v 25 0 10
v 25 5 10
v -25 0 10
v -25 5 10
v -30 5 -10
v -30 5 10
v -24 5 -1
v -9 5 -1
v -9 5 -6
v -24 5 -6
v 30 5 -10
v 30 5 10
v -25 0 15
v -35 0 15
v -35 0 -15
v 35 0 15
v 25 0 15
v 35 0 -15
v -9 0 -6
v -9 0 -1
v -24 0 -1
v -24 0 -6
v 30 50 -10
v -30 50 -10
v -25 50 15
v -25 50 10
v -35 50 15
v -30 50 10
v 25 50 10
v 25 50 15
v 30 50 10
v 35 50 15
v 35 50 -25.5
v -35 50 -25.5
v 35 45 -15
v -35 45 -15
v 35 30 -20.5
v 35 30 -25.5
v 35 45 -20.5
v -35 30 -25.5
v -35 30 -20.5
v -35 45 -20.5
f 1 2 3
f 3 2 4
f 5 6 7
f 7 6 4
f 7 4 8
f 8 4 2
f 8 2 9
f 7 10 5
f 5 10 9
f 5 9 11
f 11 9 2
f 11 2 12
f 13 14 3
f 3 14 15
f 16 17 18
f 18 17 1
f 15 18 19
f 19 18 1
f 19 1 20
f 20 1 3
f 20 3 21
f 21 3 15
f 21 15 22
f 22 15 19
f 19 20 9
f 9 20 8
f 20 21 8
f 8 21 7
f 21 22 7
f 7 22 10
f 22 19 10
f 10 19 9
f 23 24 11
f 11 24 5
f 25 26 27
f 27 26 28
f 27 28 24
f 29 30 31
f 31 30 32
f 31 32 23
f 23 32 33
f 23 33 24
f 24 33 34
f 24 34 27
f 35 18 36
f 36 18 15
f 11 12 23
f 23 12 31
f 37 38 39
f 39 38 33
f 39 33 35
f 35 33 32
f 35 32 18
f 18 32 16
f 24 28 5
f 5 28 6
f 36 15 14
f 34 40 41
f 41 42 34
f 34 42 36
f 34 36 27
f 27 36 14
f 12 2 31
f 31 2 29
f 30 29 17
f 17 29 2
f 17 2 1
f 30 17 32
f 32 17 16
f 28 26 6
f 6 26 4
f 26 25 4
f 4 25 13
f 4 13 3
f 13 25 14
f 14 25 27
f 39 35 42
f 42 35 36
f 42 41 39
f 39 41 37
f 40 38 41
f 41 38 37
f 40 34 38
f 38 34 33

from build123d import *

# Parameters (mm, degrees)
SKETCH1_W           = 60
SKETCH1_H           = 20
BOSS_EXTRUDE1_DEPTH = 5
SKETCH2_W           = 15
SKETCH2_H           = 5
CUT_EXTRUDE1_DEPTH  = 5
SKETCH3_W           = 60
SKETCH3_H           = 50
BOSS_EXTRUDE2_DEPTH = 5
SKETCH4_W           = 25
SKETCH4_H           = 50
BOSS_EXTRUDE3_DEPTH = 5
SKETCH5_W           = 25
SKETCH5_H           = 50
BOSS_EXTRUDE4_DEPTH = 5
SKETCH7_W           = 10
SKETCH7_H           = 50
BOSS_EXTRUDE5_DEPTH = 5
SKETCH8_W           = 10
SKETCH8_H           = 50
BOSS_EXTRUDE6_DEPTH = 5
SKETCH9_W           = 70
SKETCH9_H           = 5.5
BOSS_EXTRUDE8_DEPTH = 5
SKETCH11_W          = 70
SKETCH11_H          = 20
BOSS_EXTRUDE9_DEPTH = 5


with BuildPart() as part:
    # Sketch1 → Boss-Extrude1 (new body)
    with BuildSketch(Plane(origin=(0, 0, 0), x_dir=(1, 0, 0), z_dir=(0, 1, 0))):
        Rectangle(SKETCH1_W, SKETCH1_H)
    extrude(amount=BOSS_EXTRUDE1_DEPTH)

    # Sketch2 → Cut-Extrude1 (cut)
    with BuildSketch(Plane(origin=(0, 5, 0), x_dir=(1, 0, 0), z_dir=(0, 1, 0))):
        with Locations((-16.5, 3.5)):
            Rectangle(SKETCH2_W, SKETCH2_H)
    extrude(amount=-CUT_EXTRUDE1_DEPTH, mode=Mode.SUBTRACT)

    # Sketch3 → Boss-Extrude2 (add)
    with BuildSketch(Plane(origin=(0, 0, -10), x_dir=(-1, 0, 0), z_dir=(0, 0, -1))):
        with Locations((0, 25)):
            Rectangle(SKETCH3_W, SKETCH3_H)
    extrude(amount=BOSS_EXTRUDE2_DEPTH)

    # Sketch4 → Boss-Extrude3 (add)
    with BuildSketch(Plane(origin=(30, 0, 0), x_dir=(0, 0, -1), z_dir=(1, 0, 0))):
        with Locations((2.5, 25)):
            Rectangle(SKETCH4_W, SKETCH4_H)
    extrude(amount=BOSS_EXTRUDE3_DEPTH)

    # Sketch5 → Boss-Extrude4 (add)
    with BuildSketch(Plane.ZY.offset(30)):
        with Locations((-2.5, 25)):
            Rectangle(SKETCH5_W, SKETCH5_H)
    extrude(amount=BOSS_EXTRUDE4_DEPTH)

    # Sketch7 → Boss-Extrude5 (add)
    with BuildSketch(Plane.XY.offset(10)):
        with Locations((30, 25)):
            Rectangle(SKETCH7_W, SKETCH7_H)
    extrude(amount=BOSS_EXTRUDE5_DEPTH)

    # Sketch8 → Boss-Extrude6 (add)
    with BuildSketch(Plane.XY.offset(10)):
        with Locations((-30, 25)):
            Rectangle(SKETCH8_W, SKETCH8_H)
    extrude(amount=BOSS_EXTRUDE6_DEPTH)

    # Sketch9 → Boss-Extrude8 (add)
    with BuildSketch(Plane(origin=(0, 50, 0), x_dir=(1, 0, 0), z_dir=(0, 1, 0))):
        with Locations((0, 17.75)):
            Rectangle(SKETCH9_W, SKETCH9_H)
    extrude(amount=-BOSS_EXTRUDE8_DEPTH)

    # Sketch11 → Boss-Extrude9 (add)
    with BuildSketch(Plane(origin=(0, 0, -20.5), x_dir=(-1, 0, 0), z_dir=(0, 0, -1))):
        with Locations((0, 40)):
            Rectangle(SKETCH11_W, SKETCH11_H)
    extrude(amount=BOSS_EXTRUDE9_DEPTH)


solid = part.part
